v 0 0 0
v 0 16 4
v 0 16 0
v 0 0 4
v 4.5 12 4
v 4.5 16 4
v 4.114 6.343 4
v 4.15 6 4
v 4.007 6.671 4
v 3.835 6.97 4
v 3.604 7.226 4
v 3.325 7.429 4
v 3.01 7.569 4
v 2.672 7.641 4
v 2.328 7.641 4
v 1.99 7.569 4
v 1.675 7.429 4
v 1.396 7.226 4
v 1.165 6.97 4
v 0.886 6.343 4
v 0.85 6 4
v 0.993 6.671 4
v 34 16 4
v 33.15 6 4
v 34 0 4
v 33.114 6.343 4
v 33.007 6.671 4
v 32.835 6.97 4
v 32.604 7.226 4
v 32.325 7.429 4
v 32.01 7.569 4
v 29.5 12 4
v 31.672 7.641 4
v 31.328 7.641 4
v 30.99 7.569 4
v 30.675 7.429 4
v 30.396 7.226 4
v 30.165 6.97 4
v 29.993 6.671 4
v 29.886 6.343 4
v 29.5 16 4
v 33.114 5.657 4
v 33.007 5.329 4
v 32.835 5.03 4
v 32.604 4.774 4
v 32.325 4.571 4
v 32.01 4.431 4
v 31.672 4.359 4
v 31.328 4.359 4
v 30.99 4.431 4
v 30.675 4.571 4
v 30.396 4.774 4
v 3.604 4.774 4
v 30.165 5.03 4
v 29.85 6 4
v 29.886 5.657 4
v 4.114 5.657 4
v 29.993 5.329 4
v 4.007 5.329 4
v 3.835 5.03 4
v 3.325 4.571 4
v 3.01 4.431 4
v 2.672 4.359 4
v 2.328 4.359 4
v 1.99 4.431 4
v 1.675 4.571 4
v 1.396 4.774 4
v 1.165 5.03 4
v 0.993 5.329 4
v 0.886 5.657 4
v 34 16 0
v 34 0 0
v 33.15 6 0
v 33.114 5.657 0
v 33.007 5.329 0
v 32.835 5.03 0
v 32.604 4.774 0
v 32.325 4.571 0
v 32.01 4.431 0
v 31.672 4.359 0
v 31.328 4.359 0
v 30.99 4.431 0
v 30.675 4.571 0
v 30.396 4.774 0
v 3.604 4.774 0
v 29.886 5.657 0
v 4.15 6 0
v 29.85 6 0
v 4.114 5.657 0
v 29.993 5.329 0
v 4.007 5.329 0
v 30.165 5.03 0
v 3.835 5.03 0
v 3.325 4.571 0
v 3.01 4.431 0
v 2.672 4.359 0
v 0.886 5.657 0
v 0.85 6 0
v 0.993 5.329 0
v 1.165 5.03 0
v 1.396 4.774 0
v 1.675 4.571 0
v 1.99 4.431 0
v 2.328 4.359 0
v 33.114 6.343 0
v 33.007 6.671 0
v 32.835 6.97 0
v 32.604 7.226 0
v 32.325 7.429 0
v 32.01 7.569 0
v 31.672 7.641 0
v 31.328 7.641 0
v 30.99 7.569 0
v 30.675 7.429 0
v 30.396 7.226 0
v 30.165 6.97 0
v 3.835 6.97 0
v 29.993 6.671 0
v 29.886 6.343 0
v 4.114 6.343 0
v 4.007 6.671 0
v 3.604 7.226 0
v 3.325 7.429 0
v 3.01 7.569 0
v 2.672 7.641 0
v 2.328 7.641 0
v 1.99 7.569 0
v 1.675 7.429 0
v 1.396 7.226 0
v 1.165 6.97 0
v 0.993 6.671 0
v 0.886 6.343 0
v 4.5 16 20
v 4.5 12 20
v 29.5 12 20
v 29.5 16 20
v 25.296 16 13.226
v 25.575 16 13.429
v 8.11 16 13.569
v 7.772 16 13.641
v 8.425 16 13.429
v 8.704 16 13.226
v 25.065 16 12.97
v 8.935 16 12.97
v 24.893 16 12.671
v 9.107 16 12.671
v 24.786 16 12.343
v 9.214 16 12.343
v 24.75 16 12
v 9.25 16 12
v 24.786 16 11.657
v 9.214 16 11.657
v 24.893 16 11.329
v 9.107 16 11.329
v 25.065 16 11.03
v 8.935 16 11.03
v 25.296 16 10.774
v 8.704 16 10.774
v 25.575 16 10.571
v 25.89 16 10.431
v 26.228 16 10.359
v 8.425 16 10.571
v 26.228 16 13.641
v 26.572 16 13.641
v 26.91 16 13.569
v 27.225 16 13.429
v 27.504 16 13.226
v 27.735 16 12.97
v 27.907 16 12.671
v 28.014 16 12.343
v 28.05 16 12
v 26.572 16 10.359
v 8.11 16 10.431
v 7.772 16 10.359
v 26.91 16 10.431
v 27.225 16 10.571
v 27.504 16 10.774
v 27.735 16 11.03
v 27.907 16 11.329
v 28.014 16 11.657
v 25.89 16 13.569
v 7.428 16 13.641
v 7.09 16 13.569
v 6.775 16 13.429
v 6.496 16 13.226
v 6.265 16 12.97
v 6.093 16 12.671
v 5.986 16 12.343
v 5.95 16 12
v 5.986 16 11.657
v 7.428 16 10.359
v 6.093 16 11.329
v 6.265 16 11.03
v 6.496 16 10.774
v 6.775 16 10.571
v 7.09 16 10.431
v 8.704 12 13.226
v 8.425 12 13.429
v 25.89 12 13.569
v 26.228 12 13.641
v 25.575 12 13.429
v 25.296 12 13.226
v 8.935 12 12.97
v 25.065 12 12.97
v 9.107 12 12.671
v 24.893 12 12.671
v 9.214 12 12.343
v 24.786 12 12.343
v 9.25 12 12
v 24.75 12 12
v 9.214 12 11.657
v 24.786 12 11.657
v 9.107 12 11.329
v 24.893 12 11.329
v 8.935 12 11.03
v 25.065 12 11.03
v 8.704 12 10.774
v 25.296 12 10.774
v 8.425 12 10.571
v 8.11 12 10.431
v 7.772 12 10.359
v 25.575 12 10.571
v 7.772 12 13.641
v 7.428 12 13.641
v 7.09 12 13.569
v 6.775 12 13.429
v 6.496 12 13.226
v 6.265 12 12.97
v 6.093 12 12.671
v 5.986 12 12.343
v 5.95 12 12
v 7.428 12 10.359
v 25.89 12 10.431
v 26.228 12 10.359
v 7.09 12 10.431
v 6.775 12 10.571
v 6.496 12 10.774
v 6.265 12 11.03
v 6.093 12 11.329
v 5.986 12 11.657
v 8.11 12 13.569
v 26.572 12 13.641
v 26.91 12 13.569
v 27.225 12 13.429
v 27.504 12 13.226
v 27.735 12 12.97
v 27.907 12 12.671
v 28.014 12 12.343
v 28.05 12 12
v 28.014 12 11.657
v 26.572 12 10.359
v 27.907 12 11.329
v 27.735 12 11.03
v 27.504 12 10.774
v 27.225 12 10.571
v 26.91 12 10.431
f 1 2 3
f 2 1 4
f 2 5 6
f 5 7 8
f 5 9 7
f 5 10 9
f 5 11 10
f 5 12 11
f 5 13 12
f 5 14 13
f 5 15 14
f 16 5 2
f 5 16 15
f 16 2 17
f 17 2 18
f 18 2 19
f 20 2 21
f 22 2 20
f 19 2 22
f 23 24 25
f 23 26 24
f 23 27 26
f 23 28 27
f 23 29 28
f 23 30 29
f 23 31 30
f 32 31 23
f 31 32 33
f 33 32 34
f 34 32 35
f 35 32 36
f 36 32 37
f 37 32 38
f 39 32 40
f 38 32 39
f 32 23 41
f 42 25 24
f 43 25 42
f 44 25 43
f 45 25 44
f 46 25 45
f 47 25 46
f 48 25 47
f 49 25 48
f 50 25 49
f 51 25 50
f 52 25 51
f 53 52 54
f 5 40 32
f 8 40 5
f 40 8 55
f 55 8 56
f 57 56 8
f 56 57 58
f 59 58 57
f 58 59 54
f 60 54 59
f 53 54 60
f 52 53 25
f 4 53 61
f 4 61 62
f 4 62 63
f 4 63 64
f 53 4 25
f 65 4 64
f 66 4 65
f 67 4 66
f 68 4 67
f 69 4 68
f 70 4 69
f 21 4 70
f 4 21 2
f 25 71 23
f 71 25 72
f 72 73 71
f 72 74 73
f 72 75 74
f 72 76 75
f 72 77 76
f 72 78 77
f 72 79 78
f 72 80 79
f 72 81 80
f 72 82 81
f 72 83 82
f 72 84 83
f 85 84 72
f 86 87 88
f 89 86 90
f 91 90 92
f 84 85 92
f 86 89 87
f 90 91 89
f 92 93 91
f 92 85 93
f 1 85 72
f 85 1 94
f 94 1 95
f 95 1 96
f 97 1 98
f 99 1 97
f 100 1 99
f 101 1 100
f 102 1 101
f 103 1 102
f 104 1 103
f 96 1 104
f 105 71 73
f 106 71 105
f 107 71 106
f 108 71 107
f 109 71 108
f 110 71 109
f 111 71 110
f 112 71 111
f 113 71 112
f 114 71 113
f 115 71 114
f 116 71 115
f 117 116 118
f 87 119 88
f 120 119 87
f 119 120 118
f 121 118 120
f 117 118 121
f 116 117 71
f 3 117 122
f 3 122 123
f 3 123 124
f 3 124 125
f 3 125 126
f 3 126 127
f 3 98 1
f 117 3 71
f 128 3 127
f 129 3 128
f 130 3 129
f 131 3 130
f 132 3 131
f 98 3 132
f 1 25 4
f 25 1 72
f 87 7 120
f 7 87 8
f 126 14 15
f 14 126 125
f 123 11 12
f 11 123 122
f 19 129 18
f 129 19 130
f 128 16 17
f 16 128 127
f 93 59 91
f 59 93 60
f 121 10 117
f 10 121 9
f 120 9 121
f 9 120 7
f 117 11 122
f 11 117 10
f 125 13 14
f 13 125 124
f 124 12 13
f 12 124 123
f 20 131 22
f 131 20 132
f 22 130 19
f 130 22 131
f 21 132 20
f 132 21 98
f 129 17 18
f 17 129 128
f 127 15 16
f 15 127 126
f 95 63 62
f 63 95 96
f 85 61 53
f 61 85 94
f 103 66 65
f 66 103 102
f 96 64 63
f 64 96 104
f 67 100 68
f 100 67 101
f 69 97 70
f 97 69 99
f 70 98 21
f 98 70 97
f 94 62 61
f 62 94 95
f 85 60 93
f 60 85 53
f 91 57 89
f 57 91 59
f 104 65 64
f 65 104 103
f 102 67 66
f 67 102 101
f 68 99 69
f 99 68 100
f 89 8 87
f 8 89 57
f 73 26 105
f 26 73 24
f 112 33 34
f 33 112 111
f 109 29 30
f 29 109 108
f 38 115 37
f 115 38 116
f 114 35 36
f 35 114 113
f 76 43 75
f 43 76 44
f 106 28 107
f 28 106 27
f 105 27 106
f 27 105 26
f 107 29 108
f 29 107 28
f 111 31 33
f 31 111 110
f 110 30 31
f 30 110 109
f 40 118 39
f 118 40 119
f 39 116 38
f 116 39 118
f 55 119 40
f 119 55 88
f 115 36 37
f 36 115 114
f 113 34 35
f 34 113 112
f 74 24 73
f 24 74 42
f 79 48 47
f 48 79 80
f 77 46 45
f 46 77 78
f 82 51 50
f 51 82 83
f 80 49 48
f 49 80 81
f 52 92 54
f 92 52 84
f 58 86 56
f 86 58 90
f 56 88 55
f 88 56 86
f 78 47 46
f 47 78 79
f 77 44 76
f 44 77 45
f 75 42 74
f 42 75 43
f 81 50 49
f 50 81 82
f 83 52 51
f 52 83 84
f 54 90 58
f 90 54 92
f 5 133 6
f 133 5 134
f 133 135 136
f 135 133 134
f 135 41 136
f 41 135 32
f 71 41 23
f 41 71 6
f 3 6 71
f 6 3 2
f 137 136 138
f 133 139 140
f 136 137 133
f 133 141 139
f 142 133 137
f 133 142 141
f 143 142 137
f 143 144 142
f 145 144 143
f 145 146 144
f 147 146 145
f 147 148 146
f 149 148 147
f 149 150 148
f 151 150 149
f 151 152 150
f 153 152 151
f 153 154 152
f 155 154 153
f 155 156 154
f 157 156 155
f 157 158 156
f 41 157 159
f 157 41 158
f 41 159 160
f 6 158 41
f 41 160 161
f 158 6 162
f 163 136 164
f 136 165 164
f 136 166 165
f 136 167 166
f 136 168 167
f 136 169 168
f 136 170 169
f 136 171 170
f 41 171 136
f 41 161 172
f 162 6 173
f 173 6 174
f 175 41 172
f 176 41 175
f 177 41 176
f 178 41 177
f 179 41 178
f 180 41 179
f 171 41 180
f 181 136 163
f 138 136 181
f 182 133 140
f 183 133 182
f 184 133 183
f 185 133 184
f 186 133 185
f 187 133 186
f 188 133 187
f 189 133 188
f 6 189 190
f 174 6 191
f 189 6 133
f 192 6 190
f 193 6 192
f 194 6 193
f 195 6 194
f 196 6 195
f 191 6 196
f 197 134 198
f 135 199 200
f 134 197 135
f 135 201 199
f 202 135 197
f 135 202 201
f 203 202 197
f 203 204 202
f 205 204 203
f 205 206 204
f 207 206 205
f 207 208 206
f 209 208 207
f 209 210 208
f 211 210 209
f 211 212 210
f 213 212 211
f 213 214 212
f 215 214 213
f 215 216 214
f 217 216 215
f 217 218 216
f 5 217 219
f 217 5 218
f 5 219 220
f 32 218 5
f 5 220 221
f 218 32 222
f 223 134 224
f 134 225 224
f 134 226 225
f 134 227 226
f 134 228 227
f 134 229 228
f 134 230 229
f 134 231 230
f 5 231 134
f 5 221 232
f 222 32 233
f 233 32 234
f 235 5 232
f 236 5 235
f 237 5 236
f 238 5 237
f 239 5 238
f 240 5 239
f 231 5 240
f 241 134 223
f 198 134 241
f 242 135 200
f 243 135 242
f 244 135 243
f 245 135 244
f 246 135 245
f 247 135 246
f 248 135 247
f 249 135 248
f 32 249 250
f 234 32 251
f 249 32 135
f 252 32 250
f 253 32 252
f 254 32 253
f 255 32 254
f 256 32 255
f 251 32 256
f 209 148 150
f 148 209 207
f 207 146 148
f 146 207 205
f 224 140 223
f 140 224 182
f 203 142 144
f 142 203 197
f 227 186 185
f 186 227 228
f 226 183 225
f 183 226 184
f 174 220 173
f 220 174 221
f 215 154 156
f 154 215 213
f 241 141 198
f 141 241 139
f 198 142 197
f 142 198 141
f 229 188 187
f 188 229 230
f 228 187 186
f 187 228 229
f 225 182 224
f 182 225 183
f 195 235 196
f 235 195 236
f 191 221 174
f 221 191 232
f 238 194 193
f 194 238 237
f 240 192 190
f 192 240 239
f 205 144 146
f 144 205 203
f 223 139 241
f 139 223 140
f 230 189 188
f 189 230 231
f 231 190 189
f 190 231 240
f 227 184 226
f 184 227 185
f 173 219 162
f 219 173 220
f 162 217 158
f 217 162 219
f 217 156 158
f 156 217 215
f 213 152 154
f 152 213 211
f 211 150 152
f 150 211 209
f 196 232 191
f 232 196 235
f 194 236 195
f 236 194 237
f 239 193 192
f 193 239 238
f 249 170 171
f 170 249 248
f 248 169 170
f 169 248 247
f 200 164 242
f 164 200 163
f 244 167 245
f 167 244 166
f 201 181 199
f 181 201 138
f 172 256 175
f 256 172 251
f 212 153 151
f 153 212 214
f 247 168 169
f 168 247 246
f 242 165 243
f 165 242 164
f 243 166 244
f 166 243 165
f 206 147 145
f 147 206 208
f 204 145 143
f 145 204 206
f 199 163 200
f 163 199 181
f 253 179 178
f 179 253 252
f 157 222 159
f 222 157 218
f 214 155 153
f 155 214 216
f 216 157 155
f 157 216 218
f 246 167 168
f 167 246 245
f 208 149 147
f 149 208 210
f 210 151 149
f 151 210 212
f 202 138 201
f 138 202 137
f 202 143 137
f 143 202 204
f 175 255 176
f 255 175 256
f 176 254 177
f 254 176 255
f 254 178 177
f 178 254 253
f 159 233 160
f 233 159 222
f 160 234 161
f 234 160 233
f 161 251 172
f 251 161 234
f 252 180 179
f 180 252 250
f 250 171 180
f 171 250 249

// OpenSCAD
WallThickness = 4;

BaseWidth = 34;
BaseDepth = 12;
BaseHoleDiameter = 3.3;
BaseHoleDistance = 29;

SensorToBaseHeight = 0;

SensorHoleDistance = 18.8;
SensorHoleDiameter = 3.3;
SensorWidth = 25;
SensorDepth = 16;


difference() {
    cube(size=[BaseWidth, BaseDepth, WallThickness], center=false);
    translate([(BaseWidth-BaseHoleDistance)/2, BaseDepth/2, 0])
    cylinder(h=WallThickness, d=BaseHoleDiameter, center=false, $fn=30);
    translate([(BaseWidth-BaseHoleDistance)/2+BaseHoleDistance, BaseDepth/2, 0])
    cylinder(h=WallThickness, d=BaseHoleDiameter, center=false, $fn=30);
}

translate([0, BaseDepth, 0])
cube(size=[BaseWidth, WallThickness, WallThickness], center=false);

translate([(BaseWidth-SensorWidth)/2, BaseDepth, WallThickness])
difference() {
    cube(size=[SensorWidth, WallThickness, SensorDepth], center=false);
    translate([(SensorWidth-SensorHoleDistance)/2, WallThickness, SensorDepth/2])
    rotate([90, 0, 0])
    cylinder(h=WallThickness, d=SensorHoleDiameter, center=false, $fn=30);
    translate([(SensorWidth-SensorHoleDistance)/2+SensorHoleDistance, WallThickness, SensorDepth/2])
    rotate([90, 0, 0])
    cylinder(h=WallThickness, d=SensorHoleDiameter, center=false, $fn=30);
}


/*
difference() {
cube(size=[BaseWidth, BaseDepth, WallThickness], center=false);
translate([(BaseWidth-BaseHoleDistance)/2, BaseDepth/2, 0])
cylinder(h=WallThickness, d=BaseHoleDiameter, center=false, $fn=30);
translate([(BaseWidth-BaseHoleDistance)/2+BaseHoleDistance, BaseDepth/2, 0])
cylinder(h=WallThickness, d=BaseHoleDiameter, center=false, $fn=30);
}

translate([0, -WallThickness, 0])
cube(size=[BaseWidth, WallThickness, SensorToBaseHeight+WallThickness], center=false);


translate([0, 0, SensorToBaseHeight])
difference() {
cube(size=[SensorWidth, SensorDepth, WallThickness], center=false);
translate([(SensorWidth-SensorHoleDistance)/2, SensorDepth/2, 0])
cylinder(h=WallThickness, d=SensorHoleDiameter, center=false, $fn=30);
translate([(SensorWidth-SensorHoleDistance)/2+SensorHoleDistance, SensorDepth/2, 0])
cylinder(h=WallThickness, d=SensorHoleDiameter, center=false, $fn=30);
}
*/
